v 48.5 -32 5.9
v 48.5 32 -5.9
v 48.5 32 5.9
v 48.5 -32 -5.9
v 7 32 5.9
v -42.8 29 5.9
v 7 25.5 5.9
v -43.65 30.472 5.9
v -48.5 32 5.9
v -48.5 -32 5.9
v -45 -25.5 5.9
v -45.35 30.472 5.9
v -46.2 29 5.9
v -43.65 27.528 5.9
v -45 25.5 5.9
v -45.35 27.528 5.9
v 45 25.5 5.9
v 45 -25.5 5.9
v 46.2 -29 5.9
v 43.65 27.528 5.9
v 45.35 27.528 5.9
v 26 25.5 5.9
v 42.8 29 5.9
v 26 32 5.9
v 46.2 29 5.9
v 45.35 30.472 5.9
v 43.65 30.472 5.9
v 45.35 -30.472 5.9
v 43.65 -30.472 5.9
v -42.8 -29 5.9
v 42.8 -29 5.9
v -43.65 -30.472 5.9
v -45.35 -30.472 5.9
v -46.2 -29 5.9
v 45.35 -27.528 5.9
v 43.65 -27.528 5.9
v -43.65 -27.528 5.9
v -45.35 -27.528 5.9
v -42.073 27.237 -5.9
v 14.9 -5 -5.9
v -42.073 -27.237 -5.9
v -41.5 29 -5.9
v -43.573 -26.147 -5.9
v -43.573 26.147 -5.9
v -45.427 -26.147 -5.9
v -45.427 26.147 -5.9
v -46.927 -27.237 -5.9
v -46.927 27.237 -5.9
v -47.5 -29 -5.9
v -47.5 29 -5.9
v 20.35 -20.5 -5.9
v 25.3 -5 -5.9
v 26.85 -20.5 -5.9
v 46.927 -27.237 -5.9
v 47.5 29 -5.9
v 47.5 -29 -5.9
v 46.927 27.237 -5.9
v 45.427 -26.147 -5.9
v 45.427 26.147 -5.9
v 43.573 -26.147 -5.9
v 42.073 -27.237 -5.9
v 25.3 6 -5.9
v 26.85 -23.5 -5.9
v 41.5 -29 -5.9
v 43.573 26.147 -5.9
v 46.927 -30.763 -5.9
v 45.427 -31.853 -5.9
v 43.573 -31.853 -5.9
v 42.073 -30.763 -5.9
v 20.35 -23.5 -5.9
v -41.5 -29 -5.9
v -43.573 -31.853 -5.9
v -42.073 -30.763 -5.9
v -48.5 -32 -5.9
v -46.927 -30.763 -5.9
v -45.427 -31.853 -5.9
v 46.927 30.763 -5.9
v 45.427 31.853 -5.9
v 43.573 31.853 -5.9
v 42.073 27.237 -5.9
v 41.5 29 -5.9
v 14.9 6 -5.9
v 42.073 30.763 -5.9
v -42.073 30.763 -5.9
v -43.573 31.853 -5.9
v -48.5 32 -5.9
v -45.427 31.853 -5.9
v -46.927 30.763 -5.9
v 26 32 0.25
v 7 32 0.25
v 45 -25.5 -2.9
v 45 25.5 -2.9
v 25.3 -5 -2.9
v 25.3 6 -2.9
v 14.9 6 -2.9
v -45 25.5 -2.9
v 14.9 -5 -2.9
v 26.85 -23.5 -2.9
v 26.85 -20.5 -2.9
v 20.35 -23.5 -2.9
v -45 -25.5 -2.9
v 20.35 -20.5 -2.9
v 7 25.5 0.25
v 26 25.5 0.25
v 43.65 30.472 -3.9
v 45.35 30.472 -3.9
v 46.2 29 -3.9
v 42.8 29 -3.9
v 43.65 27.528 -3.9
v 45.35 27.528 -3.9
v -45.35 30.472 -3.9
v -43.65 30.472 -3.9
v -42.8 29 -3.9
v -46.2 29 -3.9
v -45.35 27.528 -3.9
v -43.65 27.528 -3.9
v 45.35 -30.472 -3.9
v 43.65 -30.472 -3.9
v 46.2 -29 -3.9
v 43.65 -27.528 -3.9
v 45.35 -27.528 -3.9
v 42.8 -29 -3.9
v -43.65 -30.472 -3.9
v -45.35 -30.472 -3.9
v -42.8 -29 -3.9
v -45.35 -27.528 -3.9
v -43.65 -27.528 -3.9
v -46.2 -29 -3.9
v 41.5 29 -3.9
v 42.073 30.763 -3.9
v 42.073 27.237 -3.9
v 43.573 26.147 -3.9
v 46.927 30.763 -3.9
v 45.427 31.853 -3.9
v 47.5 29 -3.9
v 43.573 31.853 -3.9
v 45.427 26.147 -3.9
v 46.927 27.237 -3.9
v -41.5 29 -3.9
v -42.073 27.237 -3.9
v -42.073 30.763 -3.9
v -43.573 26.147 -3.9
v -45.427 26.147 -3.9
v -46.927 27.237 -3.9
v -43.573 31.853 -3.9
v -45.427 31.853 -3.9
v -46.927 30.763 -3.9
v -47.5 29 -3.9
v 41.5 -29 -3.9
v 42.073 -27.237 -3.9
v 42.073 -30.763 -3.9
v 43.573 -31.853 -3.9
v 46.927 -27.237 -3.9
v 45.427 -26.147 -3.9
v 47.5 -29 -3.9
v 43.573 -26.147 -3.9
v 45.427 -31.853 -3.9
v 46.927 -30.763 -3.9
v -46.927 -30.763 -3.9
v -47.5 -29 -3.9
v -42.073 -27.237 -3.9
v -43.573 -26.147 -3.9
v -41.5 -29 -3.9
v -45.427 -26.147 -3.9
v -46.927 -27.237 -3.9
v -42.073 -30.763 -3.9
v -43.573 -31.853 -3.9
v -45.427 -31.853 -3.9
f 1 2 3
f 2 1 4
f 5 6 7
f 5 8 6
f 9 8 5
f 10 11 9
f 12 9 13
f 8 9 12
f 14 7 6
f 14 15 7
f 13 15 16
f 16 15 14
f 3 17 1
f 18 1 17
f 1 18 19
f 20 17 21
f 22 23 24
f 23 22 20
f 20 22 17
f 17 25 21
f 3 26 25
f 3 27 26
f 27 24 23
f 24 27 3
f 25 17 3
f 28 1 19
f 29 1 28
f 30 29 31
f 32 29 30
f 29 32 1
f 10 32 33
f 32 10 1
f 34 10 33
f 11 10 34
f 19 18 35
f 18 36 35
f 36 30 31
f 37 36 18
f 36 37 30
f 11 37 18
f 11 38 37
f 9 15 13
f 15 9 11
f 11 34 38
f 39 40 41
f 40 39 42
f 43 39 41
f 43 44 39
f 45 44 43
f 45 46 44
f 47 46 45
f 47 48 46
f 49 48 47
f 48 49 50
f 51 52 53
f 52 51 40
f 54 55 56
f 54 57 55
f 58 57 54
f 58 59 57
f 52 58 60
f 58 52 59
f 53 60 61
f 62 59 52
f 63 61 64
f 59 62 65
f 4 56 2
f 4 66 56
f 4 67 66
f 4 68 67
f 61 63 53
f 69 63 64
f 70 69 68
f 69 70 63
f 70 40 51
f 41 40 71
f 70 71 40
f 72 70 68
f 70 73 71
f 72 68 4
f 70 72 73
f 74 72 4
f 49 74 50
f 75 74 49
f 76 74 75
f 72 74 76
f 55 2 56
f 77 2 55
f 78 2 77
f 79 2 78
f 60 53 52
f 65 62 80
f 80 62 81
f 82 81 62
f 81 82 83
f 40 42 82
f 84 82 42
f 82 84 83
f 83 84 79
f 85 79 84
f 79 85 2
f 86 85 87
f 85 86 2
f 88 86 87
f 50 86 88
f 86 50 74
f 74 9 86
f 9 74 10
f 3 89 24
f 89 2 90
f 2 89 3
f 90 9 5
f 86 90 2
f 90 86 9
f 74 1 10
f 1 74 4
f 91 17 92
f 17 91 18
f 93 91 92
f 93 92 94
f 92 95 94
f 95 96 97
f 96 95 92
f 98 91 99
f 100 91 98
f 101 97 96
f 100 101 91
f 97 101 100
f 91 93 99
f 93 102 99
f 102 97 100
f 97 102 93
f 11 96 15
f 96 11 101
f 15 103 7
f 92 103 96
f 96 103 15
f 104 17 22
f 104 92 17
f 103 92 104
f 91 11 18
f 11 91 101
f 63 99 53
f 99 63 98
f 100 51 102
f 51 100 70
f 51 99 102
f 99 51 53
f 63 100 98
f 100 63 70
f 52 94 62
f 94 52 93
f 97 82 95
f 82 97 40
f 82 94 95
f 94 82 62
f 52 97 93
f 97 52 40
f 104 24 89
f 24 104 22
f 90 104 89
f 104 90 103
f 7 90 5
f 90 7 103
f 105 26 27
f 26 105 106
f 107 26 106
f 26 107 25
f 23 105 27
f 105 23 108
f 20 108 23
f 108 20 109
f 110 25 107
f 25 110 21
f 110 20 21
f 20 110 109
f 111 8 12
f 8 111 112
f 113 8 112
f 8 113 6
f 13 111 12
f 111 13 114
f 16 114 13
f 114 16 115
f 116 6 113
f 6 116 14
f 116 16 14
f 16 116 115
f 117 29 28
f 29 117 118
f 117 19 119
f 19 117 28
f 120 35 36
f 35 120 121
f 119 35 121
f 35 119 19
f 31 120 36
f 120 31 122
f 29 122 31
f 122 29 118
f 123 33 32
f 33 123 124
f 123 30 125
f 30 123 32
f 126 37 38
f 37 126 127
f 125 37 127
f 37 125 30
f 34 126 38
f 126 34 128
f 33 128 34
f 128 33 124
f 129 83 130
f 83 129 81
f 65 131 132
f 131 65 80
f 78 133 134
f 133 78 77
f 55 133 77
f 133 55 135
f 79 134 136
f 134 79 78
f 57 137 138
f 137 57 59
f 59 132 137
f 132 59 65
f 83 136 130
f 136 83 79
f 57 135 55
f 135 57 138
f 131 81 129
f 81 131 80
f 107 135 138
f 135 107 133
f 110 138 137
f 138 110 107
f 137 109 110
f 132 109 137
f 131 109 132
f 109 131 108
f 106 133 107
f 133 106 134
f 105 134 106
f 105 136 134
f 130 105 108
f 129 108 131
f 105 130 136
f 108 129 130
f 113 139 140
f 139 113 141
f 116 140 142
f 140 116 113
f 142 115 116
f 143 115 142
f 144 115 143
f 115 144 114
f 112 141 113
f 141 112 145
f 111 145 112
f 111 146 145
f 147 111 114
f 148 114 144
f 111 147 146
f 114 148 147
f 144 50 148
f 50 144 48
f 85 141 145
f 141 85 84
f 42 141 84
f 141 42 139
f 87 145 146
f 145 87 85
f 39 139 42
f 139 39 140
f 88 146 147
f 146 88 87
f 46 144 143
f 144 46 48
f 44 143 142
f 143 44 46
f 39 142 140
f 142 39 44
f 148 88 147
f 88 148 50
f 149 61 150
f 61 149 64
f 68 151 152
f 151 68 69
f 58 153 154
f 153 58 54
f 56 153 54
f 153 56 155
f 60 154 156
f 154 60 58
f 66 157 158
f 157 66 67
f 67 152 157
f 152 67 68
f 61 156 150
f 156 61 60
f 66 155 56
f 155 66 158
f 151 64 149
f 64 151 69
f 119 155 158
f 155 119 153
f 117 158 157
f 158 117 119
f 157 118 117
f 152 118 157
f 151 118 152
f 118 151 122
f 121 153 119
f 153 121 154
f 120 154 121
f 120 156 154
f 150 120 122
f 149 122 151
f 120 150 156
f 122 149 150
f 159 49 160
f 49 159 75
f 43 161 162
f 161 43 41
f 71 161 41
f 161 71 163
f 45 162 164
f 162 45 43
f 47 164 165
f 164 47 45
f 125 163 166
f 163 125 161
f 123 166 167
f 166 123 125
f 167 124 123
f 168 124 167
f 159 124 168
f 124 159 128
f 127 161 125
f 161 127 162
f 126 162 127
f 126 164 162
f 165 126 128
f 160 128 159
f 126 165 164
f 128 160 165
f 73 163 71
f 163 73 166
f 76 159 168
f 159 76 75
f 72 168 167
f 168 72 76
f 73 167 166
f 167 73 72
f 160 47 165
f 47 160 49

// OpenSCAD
//頭4.8(2.4)(2.9)mmネジ3.4(1.7)mmナット5.8(2.9)(3.4)mm
//頭4.8(2.4)(2.9)mmネジ3.4(1.7)mmナット5.8(2.9)(3.4)mm
difference() {

    // 外枠（厚み6.5mm）
    translate([0,0,0])
    cube([97, 64,11.8 ], center = true);//外装


    //本体部
    translate([0,0,1.5])
    cube([90, 51,8.8], center = true);

    translate([90/2-21.4,-(64/2)+10,0])
    cube([6.5, 3,100], center = true);//端子

    translate([90/2-24.9,-(64/2)+32.5,0])
    cube([10.4, 11,100], center = true);//ロータリースイッチ

    translate([90/2-28.5,64/2,3.1])
    cube([19, 30,5.7], center = true);//アンテナ


    //ネジ
    translate([95/2-3,60/2-1,-20])
    cylinder(h = 100, r = 1.7, center = false);

    translate([-(95/2-3),60/2-1,-20])
    cylinder(h = 100, r = 1.7, center = false);

    translate([95/2-3,-(60/2-1),-20])
    cylinder(h = 100, r = 1.7, center = false);

    translate([-(95/2-3),-(60/2-1),-20])
    cylinder(h = 100, r = 1.7, center = false);

        //ネジ頭
    translate([95/2-3,60/2-1,-(11.8/2)])
    cylinder(h = 2, r = 3, center = false);

    translate([-(95/2-3),60/2-1,-(11.8/2)])
    cylinder(h = 2, r = 3, center = false);

    translate([95/2-3,-(60/2-1),-(11.8/2)])
    cylinder(h = 2, r = 3, center = false);

    translate([-(95/2-3),-(60/2-1),-(11.8/2)])
    cylinder(h = 2, r = 3, center = false);



   
}
